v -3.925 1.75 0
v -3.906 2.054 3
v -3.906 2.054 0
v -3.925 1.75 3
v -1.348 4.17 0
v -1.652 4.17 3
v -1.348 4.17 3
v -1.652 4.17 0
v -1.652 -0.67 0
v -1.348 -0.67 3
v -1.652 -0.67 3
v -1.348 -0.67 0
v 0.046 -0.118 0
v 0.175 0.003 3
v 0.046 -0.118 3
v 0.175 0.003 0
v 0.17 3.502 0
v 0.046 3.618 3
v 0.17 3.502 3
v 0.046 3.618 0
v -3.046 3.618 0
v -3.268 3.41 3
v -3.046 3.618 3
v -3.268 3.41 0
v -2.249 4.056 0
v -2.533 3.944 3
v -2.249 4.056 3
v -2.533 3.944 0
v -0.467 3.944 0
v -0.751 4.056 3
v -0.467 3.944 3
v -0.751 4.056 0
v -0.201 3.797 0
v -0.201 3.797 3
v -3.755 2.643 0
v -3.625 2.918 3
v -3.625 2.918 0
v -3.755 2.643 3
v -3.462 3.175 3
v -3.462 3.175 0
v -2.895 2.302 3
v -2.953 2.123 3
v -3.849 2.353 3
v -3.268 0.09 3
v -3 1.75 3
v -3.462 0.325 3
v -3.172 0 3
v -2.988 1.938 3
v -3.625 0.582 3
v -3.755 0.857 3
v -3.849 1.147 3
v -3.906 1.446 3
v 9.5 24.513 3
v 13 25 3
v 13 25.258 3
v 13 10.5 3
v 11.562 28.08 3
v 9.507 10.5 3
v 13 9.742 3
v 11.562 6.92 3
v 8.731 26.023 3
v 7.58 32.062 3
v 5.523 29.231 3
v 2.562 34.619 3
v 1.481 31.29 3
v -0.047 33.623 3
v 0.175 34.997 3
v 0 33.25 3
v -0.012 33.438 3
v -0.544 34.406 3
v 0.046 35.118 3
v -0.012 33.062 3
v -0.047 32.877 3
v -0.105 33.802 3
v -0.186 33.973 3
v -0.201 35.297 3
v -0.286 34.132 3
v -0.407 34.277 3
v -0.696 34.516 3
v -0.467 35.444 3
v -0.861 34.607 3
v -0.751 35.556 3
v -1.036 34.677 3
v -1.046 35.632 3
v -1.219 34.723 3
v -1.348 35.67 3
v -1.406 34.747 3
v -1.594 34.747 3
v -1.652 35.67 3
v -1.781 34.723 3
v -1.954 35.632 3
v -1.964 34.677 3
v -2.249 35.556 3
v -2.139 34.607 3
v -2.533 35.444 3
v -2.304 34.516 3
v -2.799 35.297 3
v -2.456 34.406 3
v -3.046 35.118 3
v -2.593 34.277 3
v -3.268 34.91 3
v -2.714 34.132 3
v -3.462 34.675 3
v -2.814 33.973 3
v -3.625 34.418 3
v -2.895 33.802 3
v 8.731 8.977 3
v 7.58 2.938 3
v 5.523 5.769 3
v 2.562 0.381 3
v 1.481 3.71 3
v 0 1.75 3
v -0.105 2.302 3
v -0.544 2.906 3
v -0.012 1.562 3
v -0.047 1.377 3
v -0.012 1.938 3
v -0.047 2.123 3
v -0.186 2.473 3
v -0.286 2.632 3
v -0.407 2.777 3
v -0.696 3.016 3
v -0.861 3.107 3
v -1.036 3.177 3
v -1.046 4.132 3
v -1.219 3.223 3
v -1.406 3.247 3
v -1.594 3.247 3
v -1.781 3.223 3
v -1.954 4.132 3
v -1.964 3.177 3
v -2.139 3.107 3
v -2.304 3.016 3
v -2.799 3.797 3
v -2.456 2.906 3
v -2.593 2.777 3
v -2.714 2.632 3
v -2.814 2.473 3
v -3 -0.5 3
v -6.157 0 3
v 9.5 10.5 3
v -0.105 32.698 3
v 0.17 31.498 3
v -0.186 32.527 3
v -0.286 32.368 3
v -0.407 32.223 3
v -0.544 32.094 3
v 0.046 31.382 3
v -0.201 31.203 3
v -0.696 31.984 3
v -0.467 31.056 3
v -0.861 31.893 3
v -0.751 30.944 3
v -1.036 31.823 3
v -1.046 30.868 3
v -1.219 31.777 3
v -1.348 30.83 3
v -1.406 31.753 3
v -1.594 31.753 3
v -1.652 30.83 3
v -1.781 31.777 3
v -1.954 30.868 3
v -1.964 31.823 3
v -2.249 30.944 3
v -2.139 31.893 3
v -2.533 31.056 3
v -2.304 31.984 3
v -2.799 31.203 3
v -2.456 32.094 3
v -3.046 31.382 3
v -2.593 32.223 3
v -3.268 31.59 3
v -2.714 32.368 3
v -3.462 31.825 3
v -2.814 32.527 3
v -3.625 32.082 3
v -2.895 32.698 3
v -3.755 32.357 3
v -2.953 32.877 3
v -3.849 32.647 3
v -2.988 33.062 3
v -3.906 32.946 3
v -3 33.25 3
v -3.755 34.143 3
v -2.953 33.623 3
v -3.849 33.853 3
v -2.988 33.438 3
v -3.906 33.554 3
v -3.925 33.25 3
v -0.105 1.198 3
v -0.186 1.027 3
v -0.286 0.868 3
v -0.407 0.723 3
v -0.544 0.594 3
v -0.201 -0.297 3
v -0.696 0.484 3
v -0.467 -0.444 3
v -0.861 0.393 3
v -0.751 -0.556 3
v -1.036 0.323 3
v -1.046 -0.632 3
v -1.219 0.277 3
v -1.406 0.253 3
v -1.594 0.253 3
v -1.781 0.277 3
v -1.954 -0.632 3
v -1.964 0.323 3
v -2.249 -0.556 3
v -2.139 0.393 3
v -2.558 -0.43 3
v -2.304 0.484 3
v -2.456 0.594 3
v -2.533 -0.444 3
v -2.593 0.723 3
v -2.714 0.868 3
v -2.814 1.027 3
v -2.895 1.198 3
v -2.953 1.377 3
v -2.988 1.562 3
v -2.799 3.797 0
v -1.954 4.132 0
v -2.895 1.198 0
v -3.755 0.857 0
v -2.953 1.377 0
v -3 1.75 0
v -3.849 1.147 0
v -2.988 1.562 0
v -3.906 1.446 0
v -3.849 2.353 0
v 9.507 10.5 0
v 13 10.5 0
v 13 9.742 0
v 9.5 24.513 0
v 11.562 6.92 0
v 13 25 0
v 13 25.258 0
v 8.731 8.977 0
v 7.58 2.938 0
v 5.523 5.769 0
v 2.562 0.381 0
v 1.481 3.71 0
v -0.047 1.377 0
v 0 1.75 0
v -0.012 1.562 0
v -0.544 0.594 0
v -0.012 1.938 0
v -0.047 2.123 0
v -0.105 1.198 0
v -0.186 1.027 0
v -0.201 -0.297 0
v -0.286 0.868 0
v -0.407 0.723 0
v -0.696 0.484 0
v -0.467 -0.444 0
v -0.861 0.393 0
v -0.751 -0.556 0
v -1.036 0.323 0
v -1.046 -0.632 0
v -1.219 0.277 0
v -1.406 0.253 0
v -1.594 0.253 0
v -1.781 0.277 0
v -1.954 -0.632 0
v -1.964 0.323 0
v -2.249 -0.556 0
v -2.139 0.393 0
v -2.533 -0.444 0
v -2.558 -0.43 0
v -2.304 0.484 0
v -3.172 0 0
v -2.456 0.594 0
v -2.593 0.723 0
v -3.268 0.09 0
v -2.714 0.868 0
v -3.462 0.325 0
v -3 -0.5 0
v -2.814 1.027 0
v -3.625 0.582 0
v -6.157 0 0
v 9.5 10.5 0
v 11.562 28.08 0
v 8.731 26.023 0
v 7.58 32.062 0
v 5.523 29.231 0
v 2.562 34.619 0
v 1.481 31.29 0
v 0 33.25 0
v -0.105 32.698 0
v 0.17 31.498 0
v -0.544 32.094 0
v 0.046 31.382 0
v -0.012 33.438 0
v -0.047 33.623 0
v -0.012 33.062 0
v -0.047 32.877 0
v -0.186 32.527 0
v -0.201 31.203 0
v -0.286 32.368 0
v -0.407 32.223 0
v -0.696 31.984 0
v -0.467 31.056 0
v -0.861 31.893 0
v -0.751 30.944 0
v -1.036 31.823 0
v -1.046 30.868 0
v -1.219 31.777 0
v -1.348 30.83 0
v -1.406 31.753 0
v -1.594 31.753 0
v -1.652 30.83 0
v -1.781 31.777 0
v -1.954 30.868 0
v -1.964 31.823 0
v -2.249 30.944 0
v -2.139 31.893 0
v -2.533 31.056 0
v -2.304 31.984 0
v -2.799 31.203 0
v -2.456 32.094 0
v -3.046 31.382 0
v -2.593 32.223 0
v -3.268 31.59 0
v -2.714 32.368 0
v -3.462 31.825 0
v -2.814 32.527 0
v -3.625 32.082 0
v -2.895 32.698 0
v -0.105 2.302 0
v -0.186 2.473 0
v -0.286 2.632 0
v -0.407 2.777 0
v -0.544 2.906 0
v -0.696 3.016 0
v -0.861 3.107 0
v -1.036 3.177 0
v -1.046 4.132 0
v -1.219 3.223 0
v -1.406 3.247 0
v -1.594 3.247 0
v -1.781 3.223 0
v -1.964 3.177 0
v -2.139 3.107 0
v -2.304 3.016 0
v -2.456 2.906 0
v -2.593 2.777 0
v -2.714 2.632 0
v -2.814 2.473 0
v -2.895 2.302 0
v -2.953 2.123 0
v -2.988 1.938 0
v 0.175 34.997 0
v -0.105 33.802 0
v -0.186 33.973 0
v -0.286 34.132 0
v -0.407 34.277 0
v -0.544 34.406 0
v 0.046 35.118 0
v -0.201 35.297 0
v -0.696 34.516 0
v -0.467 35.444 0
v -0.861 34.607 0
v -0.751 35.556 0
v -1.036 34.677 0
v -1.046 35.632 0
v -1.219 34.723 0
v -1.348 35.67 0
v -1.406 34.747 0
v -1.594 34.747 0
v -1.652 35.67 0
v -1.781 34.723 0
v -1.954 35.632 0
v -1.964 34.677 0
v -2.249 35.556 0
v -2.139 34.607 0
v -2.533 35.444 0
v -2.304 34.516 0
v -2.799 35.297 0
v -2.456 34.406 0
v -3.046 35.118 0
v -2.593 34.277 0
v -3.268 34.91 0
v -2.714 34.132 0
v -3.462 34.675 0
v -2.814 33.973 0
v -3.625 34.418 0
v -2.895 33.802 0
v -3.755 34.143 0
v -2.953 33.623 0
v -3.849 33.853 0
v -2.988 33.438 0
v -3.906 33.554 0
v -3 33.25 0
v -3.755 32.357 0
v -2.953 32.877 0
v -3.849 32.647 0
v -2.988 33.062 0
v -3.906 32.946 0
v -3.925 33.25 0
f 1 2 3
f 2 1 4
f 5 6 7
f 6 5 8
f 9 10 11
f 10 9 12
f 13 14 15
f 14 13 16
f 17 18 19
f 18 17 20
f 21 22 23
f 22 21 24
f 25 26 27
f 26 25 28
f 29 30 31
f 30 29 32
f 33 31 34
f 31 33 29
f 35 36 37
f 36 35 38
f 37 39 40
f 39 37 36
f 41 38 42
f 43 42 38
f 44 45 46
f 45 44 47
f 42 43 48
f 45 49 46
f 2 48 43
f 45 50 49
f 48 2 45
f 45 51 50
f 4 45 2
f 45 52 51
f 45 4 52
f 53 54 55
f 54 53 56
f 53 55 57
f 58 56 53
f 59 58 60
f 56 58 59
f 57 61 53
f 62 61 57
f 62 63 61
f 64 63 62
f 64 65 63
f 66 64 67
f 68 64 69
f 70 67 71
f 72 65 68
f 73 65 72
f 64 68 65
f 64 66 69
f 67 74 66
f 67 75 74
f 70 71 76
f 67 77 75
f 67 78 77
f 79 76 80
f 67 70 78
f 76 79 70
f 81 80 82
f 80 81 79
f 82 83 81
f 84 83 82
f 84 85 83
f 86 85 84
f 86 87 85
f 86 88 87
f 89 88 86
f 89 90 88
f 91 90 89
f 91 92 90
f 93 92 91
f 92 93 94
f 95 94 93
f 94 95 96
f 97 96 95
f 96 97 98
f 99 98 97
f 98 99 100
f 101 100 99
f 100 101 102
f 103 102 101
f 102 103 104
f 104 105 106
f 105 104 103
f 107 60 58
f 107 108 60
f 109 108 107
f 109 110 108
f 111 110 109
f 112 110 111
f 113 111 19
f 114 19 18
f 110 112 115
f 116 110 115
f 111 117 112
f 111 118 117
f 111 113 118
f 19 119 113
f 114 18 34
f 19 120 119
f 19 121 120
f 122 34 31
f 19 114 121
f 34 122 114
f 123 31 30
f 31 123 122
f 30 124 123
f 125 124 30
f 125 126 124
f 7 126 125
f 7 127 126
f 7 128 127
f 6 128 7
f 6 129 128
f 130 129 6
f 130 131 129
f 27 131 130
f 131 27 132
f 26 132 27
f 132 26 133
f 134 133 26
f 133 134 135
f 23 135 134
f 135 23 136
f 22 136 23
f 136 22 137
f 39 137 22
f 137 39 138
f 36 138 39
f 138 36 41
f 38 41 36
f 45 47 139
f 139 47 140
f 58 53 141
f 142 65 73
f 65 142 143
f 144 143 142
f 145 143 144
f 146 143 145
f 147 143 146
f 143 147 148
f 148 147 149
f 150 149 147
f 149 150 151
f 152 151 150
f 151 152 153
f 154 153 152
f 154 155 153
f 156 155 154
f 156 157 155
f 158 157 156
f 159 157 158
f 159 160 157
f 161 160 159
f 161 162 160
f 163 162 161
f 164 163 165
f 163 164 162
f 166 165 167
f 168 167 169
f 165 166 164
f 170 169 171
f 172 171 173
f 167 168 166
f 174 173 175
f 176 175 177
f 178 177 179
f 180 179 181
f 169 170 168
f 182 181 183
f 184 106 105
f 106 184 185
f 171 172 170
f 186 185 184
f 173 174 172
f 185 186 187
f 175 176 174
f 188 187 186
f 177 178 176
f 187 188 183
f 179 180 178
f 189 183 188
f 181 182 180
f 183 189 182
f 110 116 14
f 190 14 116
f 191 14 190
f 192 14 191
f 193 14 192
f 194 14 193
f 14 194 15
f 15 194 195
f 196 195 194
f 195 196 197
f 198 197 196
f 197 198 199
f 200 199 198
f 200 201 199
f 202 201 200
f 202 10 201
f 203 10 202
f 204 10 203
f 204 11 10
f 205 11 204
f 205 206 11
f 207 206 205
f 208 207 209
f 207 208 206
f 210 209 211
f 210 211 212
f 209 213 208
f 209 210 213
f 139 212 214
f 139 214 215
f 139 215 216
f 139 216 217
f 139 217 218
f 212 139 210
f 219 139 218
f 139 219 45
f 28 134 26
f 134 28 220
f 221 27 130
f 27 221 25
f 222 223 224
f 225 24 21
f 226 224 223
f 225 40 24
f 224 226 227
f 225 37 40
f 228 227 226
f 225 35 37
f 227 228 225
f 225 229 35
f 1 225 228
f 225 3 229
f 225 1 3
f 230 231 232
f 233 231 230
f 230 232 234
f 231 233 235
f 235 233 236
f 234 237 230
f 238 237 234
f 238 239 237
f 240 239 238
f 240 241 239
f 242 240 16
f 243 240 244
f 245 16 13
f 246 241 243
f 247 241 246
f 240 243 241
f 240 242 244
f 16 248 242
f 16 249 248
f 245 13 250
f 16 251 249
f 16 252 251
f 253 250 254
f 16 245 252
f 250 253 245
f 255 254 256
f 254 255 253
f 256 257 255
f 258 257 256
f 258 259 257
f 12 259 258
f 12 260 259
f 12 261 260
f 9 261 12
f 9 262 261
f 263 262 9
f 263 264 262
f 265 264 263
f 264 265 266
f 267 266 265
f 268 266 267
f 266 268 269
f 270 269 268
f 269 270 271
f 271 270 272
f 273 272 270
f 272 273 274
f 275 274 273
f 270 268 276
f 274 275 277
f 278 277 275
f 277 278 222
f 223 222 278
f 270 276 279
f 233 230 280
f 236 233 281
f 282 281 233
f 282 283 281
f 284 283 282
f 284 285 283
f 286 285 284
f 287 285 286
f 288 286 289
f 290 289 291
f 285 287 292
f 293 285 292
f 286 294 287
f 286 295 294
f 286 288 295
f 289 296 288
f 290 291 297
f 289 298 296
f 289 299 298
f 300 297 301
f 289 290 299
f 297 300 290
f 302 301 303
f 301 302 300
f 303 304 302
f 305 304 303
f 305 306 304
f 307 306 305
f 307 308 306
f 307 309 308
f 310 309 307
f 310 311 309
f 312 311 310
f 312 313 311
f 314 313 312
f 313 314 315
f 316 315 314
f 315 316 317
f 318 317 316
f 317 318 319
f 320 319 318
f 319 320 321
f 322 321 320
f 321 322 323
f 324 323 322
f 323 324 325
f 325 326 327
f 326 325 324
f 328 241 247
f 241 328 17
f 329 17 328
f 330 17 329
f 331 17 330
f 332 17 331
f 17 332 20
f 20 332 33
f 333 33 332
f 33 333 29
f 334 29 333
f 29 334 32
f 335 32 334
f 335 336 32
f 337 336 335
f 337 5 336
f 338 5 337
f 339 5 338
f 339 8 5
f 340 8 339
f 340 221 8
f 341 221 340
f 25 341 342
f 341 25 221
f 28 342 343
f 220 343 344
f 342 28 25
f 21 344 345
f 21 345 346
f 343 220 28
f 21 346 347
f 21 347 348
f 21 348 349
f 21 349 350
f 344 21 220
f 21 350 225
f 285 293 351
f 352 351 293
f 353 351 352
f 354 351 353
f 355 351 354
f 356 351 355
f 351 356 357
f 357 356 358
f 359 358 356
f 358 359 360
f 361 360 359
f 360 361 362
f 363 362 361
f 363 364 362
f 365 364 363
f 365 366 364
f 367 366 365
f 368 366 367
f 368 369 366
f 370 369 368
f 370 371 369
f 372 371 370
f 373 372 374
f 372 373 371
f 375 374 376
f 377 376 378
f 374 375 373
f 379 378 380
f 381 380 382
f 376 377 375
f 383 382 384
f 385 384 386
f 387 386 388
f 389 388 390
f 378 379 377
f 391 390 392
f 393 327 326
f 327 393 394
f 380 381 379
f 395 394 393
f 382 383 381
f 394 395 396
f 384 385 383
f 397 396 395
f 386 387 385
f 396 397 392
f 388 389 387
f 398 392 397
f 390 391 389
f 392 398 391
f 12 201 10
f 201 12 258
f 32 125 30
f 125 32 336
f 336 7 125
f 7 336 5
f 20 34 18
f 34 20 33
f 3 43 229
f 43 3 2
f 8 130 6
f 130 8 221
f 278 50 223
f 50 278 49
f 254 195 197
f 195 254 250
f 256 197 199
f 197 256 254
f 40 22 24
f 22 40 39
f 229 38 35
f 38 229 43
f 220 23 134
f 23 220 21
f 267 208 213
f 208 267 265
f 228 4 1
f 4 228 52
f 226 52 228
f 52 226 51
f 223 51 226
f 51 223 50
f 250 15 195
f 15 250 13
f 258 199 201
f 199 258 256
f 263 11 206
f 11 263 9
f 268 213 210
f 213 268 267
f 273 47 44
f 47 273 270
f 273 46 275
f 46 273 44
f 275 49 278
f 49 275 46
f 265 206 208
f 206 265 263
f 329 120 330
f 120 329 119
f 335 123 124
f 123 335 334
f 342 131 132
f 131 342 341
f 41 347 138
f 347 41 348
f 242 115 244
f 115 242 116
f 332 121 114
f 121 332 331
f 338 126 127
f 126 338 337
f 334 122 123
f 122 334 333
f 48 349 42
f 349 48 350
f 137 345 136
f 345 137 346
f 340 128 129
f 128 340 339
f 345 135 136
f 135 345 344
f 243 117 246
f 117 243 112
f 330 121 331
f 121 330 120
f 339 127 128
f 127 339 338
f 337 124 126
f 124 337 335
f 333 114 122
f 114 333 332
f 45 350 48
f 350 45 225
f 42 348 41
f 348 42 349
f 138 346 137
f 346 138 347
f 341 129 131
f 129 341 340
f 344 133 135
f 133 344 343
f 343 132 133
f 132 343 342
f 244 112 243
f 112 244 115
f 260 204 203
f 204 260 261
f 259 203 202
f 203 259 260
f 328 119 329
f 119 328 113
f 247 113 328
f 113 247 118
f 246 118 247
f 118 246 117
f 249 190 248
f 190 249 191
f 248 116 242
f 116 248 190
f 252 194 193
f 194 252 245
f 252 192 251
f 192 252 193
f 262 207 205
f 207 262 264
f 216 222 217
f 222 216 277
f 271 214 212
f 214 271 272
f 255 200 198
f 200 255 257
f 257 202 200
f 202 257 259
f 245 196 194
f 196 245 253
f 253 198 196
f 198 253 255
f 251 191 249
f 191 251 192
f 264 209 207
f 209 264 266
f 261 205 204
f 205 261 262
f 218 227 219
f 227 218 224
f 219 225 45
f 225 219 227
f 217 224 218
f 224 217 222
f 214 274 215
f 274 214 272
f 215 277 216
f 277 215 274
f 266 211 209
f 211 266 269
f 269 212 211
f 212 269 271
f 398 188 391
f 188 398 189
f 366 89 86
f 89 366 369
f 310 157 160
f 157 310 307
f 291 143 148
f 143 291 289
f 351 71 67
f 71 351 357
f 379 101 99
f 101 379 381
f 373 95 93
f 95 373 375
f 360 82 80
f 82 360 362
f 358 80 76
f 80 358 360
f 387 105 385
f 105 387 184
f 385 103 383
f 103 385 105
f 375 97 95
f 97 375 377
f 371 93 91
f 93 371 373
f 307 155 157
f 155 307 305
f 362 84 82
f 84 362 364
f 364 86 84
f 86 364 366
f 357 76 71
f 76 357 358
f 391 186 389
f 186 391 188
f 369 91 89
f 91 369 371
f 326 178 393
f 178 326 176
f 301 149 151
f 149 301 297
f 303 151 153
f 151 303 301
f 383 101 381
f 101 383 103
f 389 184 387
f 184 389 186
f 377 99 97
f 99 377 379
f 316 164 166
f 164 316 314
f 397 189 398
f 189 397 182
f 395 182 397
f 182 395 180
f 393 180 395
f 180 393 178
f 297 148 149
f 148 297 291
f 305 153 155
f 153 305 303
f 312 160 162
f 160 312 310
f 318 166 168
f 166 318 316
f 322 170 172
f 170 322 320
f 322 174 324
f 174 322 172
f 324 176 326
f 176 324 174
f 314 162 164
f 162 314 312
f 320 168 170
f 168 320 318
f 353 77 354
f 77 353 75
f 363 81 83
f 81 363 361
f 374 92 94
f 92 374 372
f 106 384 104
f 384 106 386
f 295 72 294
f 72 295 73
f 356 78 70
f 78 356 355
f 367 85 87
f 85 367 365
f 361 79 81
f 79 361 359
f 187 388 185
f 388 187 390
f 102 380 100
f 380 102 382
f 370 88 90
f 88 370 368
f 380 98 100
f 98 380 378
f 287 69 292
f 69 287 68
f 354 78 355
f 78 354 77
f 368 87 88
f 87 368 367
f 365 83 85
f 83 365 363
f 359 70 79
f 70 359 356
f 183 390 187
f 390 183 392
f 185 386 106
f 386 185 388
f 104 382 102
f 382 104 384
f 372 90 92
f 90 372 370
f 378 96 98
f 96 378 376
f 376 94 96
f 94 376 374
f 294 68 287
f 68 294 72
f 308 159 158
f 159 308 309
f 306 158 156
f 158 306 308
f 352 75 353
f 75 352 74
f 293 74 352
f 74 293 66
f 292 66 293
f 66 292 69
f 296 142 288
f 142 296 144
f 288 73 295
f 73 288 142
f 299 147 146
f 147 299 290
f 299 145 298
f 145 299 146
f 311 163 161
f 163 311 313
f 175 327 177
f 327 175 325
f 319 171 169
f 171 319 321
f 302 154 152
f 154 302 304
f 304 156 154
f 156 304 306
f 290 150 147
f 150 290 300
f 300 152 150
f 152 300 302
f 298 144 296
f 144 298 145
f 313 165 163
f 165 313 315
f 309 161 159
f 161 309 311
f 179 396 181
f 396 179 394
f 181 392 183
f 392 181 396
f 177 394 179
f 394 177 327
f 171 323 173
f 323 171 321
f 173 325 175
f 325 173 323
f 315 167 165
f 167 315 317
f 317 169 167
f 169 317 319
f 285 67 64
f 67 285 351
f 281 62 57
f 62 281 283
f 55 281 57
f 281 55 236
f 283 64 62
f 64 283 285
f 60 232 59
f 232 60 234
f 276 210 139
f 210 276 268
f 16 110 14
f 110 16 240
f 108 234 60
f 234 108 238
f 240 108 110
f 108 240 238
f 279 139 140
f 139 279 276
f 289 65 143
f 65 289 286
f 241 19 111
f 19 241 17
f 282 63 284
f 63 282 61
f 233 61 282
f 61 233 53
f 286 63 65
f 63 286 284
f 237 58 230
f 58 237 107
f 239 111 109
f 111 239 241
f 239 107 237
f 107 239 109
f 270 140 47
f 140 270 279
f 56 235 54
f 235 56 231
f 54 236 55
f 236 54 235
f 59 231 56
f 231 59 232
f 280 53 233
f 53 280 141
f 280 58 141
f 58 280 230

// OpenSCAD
module mount() {
    difference() {
        cylinder(h=3, r=2.425, $fn=50);
        translate([0,0,-.5])
        cylinder(h=4, r=1.5, $fn=50);    
    }
}

linear_extrude(3) {
    polygon([
        [13,10.5],
        [13,25],
        [9.5,25],
        [9.5,10.5]
    ]);
};

translate([-1.5, 1.75, 0])
mount();

translate([-1.5, 33.25, 0])
mount();

translate([0, 35/2, 0])
difference() {
    translate([-3, 0, 0])
    cylinder(h=3, r=35/2+.5, $fn=20);
    translate([-3, 0, -.5])
    cylinder(h=6, r=35/2-3, $fn=20);
    
    translate([-50, -35/2, -3])
    cube([50, 50, 10]);
    
    translate([13, -35/2, -3])
    cube([50, 50, 10]);
};
